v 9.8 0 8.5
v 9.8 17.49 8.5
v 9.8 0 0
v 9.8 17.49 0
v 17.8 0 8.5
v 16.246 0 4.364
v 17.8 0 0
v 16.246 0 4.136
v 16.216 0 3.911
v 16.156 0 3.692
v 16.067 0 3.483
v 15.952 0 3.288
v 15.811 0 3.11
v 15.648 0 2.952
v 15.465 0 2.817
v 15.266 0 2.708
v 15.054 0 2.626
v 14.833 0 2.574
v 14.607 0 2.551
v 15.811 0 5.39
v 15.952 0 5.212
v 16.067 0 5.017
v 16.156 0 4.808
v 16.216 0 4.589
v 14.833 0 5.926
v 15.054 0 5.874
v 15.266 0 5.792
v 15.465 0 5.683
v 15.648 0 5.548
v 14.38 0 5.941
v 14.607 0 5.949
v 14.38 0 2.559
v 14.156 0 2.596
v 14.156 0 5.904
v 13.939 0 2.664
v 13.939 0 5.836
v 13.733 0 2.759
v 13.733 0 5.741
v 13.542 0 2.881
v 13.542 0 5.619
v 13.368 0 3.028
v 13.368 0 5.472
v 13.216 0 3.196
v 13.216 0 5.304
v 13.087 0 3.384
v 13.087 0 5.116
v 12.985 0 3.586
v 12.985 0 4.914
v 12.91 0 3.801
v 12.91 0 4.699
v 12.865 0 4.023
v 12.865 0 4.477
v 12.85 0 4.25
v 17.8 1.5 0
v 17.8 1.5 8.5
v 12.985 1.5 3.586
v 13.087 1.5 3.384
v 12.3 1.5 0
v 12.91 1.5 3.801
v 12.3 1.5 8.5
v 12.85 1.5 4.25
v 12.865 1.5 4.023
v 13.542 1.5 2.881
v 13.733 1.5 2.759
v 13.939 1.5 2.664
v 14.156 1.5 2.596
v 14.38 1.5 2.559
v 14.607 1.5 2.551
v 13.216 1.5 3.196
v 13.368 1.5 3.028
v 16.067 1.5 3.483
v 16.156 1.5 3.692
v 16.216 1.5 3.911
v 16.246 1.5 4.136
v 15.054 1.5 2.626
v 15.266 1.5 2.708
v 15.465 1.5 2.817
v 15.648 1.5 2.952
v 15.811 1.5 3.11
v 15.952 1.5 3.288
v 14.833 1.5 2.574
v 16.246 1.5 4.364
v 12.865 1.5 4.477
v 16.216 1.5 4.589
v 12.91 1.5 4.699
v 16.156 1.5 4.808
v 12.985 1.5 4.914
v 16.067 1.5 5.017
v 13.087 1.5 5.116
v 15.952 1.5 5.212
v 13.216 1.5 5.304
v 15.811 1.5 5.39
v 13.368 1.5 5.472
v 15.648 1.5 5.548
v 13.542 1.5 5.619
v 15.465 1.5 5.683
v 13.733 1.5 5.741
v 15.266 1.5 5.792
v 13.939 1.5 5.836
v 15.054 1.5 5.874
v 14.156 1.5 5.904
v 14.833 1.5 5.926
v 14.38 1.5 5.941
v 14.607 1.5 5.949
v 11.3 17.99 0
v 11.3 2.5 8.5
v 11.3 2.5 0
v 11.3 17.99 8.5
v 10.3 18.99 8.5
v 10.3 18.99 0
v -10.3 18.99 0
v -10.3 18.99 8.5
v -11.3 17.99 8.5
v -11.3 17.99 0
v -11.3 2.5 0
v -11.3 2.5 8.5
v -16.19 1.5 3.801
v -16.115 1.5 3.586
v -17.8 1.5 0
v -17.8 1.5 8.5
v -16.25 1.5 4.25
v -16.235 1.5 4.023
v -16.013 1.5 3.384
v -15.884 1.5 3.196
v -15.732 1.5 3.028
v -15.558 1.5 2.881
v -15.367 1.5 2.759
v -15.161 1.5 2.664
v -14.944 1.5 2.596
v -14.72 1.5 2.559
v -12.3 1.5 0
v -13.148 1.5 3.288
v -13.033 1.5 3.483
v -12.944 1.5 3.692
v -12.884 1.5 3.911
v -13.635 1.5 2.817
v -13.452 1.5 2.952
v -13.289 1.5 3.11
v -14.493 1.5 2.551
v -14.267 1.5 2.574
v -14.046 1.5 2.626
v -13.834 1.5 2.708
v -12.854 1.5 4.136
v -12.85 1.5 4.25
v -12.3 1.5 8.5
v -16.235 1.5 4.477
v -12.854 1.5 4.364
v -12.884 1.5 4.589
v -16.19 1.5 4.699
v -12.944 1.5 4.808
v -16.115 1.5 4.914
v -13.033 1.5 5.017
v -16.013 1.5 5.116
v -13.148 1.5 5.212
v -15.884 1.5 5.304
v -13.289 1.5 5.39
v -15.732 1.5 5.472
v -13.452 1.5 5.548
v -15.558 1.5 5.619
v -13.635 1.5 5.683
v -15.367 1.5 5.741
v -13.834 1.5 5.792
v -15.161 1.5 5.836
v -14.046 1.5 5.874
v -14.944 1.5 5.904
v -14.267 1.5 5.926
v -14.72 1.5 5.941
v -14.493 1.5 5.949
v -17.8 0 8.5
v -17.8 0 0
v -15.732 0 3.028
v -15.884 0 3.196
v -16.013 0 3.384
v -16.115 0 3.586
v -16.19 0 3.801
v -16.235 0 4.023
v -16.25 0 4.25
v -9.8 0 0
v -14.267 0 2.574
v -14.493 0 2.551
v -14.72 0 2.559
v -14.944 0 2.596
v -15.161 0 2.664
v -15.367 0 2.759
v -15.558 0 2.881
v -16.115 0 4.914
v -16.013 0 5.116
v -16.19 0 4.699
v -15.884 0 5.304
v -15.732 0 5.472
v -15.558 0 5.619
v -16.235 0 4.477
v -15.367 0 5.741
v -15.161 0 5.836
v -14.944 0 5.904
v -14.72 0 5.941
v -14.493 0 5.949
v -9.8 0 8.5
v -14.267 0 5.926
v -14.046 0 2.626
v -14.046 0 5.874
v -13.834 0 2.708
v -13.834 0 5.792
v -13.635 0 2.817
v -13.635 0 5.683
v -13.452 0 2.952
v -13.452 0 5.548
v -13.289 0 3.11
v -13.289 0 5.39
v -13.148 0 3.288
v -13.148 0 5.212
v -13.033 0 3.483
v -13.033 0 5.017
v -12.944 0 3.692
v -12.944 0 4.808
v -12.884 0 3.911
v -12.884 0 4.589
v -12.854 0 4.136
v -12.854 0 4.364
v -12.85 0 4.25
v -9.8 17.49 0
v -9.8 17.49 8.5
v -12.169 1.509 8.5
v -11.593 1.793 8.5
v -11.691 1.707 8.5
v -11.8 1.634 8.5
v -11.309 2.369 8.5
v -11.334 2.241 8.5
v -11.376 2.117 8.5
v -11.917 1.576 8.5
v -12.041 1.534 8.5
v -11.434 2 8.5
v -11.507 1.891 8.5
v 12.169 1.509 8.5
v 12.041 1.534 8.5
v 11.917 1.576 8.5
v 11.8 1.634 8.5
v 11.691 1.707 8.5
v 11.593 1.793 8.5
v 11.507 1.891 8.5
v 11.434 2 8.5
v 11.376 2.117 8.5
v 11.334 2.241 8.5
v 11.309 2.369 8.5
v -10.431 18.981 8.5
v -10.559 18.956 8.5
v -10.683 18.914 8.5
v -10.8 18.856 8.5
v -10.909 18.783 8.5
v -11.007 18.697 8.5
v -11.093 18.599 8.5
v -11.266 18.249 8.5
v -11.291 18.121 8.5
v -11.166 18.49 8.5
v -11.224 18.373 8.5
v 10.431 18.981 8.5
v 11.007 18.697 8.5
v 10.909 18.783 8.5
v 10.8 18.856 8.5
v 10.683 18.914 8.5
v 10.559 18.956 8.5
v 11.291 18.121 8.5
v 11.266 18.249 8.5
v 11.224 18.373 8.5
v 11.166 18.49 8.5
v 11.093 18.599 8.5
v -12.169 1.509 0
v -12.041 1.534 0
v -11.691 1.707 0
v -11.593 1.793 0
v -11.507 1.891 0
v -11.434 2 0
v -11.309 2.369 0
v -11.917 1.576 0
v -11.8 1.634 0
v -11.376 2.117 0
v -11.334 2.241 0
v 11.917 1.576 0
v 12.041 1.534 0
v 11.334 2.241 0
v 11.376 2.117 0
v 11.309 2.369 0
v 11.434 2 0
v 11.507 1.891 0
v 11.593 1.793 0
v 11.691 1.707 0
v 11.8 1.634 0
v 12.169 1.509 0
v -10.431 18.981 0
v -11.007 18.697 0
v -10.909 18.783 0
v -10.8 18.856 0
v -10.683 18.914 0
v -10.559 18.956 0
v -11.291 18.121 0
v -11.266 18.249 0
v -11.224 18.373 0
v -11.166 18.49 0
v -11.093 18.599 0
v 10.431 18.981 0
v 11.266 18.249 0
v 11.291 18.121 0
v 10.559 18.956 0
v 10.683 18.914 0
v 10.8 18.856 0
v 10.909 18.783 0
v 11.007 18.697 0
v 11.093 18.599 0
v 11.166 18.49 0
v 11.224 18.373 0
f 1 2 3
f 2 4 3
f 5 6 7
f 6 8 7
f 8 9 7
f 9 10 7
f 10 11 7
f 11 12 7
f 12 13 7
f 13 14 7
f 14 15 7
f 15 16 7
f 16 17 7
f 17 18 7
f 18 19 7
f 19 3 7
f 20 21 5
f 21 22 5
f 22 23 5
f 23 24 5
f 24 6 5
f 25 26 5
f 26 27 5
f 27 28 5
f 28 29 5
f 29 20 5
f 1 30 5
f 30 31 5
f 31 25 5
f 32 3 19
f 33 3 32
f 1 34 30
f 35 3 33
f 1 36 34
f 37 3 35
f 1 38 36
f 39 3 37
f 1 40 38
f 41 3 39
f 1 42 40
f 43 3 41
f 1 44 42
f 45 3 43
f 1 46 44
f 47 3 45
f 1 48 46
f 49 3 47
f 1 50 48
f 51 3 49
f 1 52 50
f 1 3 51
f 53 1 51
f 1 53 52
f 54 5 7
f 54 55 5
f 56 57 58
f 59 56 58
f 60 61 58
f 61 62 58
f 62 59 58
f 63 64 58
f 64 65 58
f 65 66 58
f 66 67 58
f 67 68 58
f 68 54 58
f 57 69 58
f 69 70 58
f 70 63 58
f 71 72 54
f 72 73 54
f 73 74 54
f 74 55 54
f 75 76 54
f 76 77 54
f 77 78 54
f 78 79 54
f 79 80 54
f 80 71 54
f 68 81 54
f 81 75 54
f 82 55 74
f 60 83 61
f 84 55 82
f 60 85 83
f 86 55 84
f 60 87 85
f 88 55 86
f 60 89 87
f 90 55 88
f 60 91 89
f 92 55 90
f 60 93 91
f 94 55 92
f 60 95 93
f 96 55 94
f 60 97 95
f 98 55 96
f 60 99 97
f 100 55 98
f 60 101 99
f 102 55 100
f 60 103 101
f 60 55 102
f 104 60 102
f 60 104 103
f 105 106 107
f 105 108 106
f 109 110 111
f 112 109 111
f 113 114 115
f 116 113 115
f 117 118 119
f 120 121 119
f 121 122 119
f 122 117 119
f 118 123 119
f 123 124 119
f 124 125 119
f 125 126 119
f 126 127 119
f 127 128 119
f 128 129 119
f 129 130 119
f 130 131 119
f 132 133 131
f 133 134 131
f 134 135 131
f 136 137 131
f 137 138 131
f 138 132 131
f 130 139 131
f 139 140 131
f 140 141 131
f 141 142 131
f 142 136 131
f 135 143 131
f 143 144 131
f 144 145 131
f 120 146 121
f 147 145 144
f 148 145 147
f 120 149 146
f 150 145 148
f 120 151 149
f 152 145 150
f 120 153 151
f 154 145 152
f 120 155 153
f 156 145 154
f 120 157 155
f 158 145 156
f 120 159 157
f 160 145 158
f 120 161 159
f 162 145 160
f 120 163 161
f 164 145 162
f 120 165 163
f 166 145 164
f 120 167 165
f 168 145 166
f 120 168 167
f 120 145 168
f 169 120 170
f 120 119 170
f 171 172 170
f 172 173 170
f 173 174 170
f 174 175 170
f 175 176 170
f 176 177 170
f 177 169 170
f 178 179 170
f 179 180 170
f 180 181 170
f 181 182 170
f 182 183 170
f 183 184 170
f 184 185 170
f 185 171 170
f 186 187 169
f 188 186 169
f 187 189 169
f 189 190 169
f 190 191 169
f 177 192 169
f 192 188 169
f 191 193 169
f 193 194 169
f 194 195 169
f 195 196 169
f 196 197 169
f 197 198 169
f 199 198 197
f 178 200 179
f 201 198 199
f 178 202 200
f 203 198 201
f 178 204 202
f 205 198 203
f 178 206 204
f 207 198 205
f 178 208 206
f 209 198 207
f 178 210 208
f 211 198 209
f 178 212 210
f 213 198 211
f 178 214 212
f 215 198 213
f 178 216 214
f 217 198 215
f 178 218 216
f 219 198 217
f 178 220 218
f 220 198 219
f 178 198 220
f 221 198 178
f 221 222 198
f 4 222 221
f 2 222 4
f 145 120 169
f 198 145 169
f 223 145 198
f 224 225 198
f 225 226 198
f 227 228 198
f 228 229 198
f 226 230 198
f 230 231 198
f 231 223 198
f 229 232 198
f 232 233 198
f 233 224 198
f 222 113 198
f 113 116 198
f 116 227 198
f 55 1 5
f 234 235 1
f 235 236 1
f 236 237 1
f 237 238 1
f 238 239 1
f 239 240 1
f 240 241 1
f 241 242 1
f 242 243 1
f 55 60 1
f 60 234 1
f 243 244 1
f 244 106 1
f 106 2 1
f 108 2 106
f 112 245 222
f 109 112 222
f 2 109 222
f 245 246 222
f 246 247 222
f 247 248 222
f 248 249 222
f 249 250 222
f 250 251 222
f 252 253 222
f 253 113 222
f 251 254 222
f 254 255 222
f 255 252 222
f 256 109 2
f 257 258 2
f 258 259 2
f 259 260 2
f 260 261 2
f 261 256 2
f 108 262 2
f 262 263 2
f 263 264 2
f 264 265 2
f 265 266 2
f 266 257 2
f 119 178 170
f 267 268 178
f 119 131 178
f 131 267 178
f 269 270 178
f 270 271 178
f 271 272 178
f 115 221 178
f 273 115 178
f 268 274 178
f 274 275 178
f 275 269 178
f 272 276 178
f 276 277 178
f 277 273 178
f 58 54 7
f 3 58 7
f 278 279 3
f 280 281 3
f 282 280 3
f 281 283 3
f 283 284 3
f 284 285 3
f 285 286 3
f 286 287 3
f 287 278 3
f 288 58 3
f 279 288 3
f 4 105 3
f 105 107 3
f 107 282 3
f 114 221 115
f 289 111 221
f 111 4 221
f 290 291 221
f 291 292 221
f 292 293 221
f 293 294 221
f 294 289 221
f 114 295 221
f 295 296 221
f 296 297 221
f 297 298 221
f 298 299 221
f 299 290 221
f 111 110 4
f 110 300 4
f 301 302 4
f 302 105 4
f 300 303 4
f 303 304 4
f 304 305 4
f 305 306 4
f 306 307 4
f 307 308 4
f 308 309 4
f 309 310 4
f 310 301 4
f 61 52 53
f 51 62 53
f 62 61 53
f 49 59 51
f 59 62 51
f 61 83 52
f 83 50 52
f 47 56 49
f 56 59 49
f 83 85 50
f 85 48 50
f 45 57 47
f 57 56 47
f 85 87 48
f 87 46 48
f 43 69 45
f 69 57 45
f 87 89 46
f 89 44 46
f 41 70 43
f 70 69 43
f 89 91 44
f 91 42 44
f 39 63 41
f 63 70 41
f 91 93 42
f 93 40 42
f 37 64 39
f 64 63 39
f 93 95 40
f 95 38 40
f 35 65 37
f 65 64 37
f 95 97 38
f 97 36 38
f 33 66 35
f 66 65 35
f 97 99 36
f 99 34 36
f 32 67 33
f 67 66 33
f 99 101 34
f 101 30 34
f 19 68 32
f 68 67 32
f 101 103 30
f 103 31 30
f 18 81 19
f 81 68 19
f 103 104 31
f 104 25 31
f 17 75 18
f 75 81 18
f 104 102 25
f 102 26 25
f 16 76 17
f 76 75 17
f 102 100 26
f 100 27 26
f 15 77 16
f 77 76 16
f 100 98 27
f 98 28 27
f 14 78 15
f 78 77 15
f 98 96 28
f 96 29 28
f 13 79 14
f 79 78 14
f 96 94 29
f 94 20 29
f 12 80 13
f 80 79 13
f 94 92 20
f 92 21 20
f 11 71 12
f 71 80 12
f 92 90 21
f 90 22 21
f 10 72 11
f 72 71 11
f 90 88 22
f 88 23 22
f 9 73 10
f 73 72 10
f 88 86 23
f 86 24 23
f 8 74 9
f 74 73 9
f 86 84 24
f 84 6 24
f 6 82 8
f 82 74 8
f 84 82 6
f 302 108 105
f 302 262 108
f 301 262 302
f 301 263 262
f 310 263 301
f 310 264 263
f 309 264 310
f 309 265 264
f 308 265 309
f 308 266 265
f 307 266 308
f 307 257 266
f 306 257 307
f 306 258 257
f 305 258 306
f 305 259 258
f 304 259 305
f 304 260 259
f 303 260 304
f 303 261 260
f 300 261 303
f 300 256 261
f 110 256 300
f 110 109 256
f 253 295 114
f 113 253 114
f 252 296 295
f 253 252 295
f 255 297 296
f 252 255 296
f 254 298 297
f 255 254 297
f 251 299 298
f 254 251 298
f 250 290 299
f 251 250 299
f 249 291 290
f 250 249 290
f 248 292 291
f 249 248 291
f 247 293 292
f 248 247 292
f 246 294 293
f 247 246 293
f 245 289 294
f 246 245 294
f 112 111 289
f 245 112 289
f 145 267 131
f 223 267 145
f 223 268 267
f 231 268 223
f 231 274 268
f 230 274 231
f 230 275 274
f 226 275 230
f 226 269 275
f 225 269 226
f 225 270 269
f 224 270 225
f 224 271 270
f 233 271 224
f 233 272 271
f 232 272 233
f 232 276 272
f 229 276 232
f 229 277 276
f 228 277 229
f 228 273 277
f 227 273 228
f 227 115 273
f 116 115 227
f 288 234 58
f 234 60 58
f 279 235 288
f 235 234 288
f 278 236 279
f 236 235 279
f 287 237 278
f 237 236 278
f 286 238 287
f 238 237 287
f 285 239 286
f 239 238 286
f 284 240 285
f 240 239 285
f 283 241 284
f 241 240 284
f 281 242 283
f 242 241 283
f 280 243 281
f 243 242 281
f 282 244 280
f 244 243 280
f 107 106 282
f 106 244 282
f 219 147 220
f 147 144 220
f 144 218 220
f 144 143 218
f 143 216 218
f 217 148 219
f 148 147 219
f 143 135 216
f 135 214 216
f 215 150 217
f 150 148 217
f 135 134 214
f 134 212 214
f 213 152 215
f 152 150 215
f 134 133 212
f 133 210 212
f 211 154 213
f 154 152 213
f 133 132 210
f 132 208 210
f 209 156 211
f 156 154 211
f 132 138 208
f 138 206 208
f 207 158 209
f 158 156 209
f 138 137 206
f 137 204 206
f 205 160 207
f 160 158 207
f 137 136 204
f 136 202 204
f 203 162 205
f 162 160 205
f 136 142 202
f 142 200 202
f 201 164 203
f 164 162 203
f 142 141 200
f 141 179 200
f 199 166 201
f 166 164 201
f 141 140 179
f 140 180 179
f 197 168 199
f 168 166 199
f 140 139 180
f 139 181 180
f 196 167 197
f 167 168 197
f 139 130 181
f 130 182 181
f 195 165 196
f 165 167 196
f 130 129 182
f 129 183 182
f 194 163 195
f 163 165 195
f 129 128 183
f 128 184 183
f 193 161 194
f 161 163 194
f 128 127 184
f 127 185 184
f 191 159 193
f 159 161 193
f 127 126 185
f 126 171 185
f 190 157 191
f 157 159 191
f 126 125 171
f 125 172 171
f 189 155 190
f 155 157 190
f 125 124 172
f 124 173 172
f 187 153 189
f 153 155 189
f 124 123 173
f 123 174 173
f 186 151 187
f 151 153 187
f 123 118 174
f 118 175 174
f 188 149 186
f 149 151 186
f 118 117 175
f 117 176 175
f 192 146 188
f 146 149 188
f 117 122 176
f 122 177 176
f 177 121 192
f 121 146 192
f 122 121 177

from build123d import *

# Parameters (mm, degrees)
BOSS_EXTRUDE1_DEPTH = 8.5
SKETCH2_R           = 1.7
CUT_EXTRUDE1_DEPTH  = 27.362664888
FILLET1_R           = 1


with BuildPart() as part:
    # Sketch1 → Boss-Extrude1 (new body)
    with BuildSketch(Plane.XY):
        Polygon((-17.8, 0), (-17.8, 1.5), (-11.3, 1.5), (-11.3, 18.99), (11.3, 18.99), (11.3, 1.5), (17.8, 1.5), (17.8, 0), (9.8, 0), (9.8, 17.49), (-9.8, 17.49), (-9.8, 0), align=None)
    extrude(amount=BOSS_EXTRUDE1_DEPTH)

    # Sketch2 → Cut-Extrude1 (cut, through all)
    with BuildSketch(Plane(origin=(0, 1.5, 0), x_dir=(1, 0, 0), z_dir=(0, 1, 0))):
        with Locations(Location((14.55, -4.25, 0), (0, 0, 180))):
            Circle(SKETCH2_R)
    cut_extrude1 = extrude(amount=-CUT_EXTRUDE1_DEPTH, mode=Mode.SUBTRACT)

    # Fillet1
    fillet1_edges = [part.edges().sort_by_distance(p)[0] for p in [
        (-11.3, 1.5, 4.25),
        (-11.3, 18.99, 4.25),
        (11.3, 18.99, 4.25),
        (11.3, 1.5, 4.25),
    ]]
    fillet(fillet1_edges, radius=FILLET1_R)

    # Mirror1: Cut-Extrude1 across plane
    add(cut_extrude1.mirror(Plane(origin=(0, 0, 0), x_dir=(0, 0, 1), z_dir=(1, 0, 0))), mode=Mode.SUBTRACT)


solid = part.part
